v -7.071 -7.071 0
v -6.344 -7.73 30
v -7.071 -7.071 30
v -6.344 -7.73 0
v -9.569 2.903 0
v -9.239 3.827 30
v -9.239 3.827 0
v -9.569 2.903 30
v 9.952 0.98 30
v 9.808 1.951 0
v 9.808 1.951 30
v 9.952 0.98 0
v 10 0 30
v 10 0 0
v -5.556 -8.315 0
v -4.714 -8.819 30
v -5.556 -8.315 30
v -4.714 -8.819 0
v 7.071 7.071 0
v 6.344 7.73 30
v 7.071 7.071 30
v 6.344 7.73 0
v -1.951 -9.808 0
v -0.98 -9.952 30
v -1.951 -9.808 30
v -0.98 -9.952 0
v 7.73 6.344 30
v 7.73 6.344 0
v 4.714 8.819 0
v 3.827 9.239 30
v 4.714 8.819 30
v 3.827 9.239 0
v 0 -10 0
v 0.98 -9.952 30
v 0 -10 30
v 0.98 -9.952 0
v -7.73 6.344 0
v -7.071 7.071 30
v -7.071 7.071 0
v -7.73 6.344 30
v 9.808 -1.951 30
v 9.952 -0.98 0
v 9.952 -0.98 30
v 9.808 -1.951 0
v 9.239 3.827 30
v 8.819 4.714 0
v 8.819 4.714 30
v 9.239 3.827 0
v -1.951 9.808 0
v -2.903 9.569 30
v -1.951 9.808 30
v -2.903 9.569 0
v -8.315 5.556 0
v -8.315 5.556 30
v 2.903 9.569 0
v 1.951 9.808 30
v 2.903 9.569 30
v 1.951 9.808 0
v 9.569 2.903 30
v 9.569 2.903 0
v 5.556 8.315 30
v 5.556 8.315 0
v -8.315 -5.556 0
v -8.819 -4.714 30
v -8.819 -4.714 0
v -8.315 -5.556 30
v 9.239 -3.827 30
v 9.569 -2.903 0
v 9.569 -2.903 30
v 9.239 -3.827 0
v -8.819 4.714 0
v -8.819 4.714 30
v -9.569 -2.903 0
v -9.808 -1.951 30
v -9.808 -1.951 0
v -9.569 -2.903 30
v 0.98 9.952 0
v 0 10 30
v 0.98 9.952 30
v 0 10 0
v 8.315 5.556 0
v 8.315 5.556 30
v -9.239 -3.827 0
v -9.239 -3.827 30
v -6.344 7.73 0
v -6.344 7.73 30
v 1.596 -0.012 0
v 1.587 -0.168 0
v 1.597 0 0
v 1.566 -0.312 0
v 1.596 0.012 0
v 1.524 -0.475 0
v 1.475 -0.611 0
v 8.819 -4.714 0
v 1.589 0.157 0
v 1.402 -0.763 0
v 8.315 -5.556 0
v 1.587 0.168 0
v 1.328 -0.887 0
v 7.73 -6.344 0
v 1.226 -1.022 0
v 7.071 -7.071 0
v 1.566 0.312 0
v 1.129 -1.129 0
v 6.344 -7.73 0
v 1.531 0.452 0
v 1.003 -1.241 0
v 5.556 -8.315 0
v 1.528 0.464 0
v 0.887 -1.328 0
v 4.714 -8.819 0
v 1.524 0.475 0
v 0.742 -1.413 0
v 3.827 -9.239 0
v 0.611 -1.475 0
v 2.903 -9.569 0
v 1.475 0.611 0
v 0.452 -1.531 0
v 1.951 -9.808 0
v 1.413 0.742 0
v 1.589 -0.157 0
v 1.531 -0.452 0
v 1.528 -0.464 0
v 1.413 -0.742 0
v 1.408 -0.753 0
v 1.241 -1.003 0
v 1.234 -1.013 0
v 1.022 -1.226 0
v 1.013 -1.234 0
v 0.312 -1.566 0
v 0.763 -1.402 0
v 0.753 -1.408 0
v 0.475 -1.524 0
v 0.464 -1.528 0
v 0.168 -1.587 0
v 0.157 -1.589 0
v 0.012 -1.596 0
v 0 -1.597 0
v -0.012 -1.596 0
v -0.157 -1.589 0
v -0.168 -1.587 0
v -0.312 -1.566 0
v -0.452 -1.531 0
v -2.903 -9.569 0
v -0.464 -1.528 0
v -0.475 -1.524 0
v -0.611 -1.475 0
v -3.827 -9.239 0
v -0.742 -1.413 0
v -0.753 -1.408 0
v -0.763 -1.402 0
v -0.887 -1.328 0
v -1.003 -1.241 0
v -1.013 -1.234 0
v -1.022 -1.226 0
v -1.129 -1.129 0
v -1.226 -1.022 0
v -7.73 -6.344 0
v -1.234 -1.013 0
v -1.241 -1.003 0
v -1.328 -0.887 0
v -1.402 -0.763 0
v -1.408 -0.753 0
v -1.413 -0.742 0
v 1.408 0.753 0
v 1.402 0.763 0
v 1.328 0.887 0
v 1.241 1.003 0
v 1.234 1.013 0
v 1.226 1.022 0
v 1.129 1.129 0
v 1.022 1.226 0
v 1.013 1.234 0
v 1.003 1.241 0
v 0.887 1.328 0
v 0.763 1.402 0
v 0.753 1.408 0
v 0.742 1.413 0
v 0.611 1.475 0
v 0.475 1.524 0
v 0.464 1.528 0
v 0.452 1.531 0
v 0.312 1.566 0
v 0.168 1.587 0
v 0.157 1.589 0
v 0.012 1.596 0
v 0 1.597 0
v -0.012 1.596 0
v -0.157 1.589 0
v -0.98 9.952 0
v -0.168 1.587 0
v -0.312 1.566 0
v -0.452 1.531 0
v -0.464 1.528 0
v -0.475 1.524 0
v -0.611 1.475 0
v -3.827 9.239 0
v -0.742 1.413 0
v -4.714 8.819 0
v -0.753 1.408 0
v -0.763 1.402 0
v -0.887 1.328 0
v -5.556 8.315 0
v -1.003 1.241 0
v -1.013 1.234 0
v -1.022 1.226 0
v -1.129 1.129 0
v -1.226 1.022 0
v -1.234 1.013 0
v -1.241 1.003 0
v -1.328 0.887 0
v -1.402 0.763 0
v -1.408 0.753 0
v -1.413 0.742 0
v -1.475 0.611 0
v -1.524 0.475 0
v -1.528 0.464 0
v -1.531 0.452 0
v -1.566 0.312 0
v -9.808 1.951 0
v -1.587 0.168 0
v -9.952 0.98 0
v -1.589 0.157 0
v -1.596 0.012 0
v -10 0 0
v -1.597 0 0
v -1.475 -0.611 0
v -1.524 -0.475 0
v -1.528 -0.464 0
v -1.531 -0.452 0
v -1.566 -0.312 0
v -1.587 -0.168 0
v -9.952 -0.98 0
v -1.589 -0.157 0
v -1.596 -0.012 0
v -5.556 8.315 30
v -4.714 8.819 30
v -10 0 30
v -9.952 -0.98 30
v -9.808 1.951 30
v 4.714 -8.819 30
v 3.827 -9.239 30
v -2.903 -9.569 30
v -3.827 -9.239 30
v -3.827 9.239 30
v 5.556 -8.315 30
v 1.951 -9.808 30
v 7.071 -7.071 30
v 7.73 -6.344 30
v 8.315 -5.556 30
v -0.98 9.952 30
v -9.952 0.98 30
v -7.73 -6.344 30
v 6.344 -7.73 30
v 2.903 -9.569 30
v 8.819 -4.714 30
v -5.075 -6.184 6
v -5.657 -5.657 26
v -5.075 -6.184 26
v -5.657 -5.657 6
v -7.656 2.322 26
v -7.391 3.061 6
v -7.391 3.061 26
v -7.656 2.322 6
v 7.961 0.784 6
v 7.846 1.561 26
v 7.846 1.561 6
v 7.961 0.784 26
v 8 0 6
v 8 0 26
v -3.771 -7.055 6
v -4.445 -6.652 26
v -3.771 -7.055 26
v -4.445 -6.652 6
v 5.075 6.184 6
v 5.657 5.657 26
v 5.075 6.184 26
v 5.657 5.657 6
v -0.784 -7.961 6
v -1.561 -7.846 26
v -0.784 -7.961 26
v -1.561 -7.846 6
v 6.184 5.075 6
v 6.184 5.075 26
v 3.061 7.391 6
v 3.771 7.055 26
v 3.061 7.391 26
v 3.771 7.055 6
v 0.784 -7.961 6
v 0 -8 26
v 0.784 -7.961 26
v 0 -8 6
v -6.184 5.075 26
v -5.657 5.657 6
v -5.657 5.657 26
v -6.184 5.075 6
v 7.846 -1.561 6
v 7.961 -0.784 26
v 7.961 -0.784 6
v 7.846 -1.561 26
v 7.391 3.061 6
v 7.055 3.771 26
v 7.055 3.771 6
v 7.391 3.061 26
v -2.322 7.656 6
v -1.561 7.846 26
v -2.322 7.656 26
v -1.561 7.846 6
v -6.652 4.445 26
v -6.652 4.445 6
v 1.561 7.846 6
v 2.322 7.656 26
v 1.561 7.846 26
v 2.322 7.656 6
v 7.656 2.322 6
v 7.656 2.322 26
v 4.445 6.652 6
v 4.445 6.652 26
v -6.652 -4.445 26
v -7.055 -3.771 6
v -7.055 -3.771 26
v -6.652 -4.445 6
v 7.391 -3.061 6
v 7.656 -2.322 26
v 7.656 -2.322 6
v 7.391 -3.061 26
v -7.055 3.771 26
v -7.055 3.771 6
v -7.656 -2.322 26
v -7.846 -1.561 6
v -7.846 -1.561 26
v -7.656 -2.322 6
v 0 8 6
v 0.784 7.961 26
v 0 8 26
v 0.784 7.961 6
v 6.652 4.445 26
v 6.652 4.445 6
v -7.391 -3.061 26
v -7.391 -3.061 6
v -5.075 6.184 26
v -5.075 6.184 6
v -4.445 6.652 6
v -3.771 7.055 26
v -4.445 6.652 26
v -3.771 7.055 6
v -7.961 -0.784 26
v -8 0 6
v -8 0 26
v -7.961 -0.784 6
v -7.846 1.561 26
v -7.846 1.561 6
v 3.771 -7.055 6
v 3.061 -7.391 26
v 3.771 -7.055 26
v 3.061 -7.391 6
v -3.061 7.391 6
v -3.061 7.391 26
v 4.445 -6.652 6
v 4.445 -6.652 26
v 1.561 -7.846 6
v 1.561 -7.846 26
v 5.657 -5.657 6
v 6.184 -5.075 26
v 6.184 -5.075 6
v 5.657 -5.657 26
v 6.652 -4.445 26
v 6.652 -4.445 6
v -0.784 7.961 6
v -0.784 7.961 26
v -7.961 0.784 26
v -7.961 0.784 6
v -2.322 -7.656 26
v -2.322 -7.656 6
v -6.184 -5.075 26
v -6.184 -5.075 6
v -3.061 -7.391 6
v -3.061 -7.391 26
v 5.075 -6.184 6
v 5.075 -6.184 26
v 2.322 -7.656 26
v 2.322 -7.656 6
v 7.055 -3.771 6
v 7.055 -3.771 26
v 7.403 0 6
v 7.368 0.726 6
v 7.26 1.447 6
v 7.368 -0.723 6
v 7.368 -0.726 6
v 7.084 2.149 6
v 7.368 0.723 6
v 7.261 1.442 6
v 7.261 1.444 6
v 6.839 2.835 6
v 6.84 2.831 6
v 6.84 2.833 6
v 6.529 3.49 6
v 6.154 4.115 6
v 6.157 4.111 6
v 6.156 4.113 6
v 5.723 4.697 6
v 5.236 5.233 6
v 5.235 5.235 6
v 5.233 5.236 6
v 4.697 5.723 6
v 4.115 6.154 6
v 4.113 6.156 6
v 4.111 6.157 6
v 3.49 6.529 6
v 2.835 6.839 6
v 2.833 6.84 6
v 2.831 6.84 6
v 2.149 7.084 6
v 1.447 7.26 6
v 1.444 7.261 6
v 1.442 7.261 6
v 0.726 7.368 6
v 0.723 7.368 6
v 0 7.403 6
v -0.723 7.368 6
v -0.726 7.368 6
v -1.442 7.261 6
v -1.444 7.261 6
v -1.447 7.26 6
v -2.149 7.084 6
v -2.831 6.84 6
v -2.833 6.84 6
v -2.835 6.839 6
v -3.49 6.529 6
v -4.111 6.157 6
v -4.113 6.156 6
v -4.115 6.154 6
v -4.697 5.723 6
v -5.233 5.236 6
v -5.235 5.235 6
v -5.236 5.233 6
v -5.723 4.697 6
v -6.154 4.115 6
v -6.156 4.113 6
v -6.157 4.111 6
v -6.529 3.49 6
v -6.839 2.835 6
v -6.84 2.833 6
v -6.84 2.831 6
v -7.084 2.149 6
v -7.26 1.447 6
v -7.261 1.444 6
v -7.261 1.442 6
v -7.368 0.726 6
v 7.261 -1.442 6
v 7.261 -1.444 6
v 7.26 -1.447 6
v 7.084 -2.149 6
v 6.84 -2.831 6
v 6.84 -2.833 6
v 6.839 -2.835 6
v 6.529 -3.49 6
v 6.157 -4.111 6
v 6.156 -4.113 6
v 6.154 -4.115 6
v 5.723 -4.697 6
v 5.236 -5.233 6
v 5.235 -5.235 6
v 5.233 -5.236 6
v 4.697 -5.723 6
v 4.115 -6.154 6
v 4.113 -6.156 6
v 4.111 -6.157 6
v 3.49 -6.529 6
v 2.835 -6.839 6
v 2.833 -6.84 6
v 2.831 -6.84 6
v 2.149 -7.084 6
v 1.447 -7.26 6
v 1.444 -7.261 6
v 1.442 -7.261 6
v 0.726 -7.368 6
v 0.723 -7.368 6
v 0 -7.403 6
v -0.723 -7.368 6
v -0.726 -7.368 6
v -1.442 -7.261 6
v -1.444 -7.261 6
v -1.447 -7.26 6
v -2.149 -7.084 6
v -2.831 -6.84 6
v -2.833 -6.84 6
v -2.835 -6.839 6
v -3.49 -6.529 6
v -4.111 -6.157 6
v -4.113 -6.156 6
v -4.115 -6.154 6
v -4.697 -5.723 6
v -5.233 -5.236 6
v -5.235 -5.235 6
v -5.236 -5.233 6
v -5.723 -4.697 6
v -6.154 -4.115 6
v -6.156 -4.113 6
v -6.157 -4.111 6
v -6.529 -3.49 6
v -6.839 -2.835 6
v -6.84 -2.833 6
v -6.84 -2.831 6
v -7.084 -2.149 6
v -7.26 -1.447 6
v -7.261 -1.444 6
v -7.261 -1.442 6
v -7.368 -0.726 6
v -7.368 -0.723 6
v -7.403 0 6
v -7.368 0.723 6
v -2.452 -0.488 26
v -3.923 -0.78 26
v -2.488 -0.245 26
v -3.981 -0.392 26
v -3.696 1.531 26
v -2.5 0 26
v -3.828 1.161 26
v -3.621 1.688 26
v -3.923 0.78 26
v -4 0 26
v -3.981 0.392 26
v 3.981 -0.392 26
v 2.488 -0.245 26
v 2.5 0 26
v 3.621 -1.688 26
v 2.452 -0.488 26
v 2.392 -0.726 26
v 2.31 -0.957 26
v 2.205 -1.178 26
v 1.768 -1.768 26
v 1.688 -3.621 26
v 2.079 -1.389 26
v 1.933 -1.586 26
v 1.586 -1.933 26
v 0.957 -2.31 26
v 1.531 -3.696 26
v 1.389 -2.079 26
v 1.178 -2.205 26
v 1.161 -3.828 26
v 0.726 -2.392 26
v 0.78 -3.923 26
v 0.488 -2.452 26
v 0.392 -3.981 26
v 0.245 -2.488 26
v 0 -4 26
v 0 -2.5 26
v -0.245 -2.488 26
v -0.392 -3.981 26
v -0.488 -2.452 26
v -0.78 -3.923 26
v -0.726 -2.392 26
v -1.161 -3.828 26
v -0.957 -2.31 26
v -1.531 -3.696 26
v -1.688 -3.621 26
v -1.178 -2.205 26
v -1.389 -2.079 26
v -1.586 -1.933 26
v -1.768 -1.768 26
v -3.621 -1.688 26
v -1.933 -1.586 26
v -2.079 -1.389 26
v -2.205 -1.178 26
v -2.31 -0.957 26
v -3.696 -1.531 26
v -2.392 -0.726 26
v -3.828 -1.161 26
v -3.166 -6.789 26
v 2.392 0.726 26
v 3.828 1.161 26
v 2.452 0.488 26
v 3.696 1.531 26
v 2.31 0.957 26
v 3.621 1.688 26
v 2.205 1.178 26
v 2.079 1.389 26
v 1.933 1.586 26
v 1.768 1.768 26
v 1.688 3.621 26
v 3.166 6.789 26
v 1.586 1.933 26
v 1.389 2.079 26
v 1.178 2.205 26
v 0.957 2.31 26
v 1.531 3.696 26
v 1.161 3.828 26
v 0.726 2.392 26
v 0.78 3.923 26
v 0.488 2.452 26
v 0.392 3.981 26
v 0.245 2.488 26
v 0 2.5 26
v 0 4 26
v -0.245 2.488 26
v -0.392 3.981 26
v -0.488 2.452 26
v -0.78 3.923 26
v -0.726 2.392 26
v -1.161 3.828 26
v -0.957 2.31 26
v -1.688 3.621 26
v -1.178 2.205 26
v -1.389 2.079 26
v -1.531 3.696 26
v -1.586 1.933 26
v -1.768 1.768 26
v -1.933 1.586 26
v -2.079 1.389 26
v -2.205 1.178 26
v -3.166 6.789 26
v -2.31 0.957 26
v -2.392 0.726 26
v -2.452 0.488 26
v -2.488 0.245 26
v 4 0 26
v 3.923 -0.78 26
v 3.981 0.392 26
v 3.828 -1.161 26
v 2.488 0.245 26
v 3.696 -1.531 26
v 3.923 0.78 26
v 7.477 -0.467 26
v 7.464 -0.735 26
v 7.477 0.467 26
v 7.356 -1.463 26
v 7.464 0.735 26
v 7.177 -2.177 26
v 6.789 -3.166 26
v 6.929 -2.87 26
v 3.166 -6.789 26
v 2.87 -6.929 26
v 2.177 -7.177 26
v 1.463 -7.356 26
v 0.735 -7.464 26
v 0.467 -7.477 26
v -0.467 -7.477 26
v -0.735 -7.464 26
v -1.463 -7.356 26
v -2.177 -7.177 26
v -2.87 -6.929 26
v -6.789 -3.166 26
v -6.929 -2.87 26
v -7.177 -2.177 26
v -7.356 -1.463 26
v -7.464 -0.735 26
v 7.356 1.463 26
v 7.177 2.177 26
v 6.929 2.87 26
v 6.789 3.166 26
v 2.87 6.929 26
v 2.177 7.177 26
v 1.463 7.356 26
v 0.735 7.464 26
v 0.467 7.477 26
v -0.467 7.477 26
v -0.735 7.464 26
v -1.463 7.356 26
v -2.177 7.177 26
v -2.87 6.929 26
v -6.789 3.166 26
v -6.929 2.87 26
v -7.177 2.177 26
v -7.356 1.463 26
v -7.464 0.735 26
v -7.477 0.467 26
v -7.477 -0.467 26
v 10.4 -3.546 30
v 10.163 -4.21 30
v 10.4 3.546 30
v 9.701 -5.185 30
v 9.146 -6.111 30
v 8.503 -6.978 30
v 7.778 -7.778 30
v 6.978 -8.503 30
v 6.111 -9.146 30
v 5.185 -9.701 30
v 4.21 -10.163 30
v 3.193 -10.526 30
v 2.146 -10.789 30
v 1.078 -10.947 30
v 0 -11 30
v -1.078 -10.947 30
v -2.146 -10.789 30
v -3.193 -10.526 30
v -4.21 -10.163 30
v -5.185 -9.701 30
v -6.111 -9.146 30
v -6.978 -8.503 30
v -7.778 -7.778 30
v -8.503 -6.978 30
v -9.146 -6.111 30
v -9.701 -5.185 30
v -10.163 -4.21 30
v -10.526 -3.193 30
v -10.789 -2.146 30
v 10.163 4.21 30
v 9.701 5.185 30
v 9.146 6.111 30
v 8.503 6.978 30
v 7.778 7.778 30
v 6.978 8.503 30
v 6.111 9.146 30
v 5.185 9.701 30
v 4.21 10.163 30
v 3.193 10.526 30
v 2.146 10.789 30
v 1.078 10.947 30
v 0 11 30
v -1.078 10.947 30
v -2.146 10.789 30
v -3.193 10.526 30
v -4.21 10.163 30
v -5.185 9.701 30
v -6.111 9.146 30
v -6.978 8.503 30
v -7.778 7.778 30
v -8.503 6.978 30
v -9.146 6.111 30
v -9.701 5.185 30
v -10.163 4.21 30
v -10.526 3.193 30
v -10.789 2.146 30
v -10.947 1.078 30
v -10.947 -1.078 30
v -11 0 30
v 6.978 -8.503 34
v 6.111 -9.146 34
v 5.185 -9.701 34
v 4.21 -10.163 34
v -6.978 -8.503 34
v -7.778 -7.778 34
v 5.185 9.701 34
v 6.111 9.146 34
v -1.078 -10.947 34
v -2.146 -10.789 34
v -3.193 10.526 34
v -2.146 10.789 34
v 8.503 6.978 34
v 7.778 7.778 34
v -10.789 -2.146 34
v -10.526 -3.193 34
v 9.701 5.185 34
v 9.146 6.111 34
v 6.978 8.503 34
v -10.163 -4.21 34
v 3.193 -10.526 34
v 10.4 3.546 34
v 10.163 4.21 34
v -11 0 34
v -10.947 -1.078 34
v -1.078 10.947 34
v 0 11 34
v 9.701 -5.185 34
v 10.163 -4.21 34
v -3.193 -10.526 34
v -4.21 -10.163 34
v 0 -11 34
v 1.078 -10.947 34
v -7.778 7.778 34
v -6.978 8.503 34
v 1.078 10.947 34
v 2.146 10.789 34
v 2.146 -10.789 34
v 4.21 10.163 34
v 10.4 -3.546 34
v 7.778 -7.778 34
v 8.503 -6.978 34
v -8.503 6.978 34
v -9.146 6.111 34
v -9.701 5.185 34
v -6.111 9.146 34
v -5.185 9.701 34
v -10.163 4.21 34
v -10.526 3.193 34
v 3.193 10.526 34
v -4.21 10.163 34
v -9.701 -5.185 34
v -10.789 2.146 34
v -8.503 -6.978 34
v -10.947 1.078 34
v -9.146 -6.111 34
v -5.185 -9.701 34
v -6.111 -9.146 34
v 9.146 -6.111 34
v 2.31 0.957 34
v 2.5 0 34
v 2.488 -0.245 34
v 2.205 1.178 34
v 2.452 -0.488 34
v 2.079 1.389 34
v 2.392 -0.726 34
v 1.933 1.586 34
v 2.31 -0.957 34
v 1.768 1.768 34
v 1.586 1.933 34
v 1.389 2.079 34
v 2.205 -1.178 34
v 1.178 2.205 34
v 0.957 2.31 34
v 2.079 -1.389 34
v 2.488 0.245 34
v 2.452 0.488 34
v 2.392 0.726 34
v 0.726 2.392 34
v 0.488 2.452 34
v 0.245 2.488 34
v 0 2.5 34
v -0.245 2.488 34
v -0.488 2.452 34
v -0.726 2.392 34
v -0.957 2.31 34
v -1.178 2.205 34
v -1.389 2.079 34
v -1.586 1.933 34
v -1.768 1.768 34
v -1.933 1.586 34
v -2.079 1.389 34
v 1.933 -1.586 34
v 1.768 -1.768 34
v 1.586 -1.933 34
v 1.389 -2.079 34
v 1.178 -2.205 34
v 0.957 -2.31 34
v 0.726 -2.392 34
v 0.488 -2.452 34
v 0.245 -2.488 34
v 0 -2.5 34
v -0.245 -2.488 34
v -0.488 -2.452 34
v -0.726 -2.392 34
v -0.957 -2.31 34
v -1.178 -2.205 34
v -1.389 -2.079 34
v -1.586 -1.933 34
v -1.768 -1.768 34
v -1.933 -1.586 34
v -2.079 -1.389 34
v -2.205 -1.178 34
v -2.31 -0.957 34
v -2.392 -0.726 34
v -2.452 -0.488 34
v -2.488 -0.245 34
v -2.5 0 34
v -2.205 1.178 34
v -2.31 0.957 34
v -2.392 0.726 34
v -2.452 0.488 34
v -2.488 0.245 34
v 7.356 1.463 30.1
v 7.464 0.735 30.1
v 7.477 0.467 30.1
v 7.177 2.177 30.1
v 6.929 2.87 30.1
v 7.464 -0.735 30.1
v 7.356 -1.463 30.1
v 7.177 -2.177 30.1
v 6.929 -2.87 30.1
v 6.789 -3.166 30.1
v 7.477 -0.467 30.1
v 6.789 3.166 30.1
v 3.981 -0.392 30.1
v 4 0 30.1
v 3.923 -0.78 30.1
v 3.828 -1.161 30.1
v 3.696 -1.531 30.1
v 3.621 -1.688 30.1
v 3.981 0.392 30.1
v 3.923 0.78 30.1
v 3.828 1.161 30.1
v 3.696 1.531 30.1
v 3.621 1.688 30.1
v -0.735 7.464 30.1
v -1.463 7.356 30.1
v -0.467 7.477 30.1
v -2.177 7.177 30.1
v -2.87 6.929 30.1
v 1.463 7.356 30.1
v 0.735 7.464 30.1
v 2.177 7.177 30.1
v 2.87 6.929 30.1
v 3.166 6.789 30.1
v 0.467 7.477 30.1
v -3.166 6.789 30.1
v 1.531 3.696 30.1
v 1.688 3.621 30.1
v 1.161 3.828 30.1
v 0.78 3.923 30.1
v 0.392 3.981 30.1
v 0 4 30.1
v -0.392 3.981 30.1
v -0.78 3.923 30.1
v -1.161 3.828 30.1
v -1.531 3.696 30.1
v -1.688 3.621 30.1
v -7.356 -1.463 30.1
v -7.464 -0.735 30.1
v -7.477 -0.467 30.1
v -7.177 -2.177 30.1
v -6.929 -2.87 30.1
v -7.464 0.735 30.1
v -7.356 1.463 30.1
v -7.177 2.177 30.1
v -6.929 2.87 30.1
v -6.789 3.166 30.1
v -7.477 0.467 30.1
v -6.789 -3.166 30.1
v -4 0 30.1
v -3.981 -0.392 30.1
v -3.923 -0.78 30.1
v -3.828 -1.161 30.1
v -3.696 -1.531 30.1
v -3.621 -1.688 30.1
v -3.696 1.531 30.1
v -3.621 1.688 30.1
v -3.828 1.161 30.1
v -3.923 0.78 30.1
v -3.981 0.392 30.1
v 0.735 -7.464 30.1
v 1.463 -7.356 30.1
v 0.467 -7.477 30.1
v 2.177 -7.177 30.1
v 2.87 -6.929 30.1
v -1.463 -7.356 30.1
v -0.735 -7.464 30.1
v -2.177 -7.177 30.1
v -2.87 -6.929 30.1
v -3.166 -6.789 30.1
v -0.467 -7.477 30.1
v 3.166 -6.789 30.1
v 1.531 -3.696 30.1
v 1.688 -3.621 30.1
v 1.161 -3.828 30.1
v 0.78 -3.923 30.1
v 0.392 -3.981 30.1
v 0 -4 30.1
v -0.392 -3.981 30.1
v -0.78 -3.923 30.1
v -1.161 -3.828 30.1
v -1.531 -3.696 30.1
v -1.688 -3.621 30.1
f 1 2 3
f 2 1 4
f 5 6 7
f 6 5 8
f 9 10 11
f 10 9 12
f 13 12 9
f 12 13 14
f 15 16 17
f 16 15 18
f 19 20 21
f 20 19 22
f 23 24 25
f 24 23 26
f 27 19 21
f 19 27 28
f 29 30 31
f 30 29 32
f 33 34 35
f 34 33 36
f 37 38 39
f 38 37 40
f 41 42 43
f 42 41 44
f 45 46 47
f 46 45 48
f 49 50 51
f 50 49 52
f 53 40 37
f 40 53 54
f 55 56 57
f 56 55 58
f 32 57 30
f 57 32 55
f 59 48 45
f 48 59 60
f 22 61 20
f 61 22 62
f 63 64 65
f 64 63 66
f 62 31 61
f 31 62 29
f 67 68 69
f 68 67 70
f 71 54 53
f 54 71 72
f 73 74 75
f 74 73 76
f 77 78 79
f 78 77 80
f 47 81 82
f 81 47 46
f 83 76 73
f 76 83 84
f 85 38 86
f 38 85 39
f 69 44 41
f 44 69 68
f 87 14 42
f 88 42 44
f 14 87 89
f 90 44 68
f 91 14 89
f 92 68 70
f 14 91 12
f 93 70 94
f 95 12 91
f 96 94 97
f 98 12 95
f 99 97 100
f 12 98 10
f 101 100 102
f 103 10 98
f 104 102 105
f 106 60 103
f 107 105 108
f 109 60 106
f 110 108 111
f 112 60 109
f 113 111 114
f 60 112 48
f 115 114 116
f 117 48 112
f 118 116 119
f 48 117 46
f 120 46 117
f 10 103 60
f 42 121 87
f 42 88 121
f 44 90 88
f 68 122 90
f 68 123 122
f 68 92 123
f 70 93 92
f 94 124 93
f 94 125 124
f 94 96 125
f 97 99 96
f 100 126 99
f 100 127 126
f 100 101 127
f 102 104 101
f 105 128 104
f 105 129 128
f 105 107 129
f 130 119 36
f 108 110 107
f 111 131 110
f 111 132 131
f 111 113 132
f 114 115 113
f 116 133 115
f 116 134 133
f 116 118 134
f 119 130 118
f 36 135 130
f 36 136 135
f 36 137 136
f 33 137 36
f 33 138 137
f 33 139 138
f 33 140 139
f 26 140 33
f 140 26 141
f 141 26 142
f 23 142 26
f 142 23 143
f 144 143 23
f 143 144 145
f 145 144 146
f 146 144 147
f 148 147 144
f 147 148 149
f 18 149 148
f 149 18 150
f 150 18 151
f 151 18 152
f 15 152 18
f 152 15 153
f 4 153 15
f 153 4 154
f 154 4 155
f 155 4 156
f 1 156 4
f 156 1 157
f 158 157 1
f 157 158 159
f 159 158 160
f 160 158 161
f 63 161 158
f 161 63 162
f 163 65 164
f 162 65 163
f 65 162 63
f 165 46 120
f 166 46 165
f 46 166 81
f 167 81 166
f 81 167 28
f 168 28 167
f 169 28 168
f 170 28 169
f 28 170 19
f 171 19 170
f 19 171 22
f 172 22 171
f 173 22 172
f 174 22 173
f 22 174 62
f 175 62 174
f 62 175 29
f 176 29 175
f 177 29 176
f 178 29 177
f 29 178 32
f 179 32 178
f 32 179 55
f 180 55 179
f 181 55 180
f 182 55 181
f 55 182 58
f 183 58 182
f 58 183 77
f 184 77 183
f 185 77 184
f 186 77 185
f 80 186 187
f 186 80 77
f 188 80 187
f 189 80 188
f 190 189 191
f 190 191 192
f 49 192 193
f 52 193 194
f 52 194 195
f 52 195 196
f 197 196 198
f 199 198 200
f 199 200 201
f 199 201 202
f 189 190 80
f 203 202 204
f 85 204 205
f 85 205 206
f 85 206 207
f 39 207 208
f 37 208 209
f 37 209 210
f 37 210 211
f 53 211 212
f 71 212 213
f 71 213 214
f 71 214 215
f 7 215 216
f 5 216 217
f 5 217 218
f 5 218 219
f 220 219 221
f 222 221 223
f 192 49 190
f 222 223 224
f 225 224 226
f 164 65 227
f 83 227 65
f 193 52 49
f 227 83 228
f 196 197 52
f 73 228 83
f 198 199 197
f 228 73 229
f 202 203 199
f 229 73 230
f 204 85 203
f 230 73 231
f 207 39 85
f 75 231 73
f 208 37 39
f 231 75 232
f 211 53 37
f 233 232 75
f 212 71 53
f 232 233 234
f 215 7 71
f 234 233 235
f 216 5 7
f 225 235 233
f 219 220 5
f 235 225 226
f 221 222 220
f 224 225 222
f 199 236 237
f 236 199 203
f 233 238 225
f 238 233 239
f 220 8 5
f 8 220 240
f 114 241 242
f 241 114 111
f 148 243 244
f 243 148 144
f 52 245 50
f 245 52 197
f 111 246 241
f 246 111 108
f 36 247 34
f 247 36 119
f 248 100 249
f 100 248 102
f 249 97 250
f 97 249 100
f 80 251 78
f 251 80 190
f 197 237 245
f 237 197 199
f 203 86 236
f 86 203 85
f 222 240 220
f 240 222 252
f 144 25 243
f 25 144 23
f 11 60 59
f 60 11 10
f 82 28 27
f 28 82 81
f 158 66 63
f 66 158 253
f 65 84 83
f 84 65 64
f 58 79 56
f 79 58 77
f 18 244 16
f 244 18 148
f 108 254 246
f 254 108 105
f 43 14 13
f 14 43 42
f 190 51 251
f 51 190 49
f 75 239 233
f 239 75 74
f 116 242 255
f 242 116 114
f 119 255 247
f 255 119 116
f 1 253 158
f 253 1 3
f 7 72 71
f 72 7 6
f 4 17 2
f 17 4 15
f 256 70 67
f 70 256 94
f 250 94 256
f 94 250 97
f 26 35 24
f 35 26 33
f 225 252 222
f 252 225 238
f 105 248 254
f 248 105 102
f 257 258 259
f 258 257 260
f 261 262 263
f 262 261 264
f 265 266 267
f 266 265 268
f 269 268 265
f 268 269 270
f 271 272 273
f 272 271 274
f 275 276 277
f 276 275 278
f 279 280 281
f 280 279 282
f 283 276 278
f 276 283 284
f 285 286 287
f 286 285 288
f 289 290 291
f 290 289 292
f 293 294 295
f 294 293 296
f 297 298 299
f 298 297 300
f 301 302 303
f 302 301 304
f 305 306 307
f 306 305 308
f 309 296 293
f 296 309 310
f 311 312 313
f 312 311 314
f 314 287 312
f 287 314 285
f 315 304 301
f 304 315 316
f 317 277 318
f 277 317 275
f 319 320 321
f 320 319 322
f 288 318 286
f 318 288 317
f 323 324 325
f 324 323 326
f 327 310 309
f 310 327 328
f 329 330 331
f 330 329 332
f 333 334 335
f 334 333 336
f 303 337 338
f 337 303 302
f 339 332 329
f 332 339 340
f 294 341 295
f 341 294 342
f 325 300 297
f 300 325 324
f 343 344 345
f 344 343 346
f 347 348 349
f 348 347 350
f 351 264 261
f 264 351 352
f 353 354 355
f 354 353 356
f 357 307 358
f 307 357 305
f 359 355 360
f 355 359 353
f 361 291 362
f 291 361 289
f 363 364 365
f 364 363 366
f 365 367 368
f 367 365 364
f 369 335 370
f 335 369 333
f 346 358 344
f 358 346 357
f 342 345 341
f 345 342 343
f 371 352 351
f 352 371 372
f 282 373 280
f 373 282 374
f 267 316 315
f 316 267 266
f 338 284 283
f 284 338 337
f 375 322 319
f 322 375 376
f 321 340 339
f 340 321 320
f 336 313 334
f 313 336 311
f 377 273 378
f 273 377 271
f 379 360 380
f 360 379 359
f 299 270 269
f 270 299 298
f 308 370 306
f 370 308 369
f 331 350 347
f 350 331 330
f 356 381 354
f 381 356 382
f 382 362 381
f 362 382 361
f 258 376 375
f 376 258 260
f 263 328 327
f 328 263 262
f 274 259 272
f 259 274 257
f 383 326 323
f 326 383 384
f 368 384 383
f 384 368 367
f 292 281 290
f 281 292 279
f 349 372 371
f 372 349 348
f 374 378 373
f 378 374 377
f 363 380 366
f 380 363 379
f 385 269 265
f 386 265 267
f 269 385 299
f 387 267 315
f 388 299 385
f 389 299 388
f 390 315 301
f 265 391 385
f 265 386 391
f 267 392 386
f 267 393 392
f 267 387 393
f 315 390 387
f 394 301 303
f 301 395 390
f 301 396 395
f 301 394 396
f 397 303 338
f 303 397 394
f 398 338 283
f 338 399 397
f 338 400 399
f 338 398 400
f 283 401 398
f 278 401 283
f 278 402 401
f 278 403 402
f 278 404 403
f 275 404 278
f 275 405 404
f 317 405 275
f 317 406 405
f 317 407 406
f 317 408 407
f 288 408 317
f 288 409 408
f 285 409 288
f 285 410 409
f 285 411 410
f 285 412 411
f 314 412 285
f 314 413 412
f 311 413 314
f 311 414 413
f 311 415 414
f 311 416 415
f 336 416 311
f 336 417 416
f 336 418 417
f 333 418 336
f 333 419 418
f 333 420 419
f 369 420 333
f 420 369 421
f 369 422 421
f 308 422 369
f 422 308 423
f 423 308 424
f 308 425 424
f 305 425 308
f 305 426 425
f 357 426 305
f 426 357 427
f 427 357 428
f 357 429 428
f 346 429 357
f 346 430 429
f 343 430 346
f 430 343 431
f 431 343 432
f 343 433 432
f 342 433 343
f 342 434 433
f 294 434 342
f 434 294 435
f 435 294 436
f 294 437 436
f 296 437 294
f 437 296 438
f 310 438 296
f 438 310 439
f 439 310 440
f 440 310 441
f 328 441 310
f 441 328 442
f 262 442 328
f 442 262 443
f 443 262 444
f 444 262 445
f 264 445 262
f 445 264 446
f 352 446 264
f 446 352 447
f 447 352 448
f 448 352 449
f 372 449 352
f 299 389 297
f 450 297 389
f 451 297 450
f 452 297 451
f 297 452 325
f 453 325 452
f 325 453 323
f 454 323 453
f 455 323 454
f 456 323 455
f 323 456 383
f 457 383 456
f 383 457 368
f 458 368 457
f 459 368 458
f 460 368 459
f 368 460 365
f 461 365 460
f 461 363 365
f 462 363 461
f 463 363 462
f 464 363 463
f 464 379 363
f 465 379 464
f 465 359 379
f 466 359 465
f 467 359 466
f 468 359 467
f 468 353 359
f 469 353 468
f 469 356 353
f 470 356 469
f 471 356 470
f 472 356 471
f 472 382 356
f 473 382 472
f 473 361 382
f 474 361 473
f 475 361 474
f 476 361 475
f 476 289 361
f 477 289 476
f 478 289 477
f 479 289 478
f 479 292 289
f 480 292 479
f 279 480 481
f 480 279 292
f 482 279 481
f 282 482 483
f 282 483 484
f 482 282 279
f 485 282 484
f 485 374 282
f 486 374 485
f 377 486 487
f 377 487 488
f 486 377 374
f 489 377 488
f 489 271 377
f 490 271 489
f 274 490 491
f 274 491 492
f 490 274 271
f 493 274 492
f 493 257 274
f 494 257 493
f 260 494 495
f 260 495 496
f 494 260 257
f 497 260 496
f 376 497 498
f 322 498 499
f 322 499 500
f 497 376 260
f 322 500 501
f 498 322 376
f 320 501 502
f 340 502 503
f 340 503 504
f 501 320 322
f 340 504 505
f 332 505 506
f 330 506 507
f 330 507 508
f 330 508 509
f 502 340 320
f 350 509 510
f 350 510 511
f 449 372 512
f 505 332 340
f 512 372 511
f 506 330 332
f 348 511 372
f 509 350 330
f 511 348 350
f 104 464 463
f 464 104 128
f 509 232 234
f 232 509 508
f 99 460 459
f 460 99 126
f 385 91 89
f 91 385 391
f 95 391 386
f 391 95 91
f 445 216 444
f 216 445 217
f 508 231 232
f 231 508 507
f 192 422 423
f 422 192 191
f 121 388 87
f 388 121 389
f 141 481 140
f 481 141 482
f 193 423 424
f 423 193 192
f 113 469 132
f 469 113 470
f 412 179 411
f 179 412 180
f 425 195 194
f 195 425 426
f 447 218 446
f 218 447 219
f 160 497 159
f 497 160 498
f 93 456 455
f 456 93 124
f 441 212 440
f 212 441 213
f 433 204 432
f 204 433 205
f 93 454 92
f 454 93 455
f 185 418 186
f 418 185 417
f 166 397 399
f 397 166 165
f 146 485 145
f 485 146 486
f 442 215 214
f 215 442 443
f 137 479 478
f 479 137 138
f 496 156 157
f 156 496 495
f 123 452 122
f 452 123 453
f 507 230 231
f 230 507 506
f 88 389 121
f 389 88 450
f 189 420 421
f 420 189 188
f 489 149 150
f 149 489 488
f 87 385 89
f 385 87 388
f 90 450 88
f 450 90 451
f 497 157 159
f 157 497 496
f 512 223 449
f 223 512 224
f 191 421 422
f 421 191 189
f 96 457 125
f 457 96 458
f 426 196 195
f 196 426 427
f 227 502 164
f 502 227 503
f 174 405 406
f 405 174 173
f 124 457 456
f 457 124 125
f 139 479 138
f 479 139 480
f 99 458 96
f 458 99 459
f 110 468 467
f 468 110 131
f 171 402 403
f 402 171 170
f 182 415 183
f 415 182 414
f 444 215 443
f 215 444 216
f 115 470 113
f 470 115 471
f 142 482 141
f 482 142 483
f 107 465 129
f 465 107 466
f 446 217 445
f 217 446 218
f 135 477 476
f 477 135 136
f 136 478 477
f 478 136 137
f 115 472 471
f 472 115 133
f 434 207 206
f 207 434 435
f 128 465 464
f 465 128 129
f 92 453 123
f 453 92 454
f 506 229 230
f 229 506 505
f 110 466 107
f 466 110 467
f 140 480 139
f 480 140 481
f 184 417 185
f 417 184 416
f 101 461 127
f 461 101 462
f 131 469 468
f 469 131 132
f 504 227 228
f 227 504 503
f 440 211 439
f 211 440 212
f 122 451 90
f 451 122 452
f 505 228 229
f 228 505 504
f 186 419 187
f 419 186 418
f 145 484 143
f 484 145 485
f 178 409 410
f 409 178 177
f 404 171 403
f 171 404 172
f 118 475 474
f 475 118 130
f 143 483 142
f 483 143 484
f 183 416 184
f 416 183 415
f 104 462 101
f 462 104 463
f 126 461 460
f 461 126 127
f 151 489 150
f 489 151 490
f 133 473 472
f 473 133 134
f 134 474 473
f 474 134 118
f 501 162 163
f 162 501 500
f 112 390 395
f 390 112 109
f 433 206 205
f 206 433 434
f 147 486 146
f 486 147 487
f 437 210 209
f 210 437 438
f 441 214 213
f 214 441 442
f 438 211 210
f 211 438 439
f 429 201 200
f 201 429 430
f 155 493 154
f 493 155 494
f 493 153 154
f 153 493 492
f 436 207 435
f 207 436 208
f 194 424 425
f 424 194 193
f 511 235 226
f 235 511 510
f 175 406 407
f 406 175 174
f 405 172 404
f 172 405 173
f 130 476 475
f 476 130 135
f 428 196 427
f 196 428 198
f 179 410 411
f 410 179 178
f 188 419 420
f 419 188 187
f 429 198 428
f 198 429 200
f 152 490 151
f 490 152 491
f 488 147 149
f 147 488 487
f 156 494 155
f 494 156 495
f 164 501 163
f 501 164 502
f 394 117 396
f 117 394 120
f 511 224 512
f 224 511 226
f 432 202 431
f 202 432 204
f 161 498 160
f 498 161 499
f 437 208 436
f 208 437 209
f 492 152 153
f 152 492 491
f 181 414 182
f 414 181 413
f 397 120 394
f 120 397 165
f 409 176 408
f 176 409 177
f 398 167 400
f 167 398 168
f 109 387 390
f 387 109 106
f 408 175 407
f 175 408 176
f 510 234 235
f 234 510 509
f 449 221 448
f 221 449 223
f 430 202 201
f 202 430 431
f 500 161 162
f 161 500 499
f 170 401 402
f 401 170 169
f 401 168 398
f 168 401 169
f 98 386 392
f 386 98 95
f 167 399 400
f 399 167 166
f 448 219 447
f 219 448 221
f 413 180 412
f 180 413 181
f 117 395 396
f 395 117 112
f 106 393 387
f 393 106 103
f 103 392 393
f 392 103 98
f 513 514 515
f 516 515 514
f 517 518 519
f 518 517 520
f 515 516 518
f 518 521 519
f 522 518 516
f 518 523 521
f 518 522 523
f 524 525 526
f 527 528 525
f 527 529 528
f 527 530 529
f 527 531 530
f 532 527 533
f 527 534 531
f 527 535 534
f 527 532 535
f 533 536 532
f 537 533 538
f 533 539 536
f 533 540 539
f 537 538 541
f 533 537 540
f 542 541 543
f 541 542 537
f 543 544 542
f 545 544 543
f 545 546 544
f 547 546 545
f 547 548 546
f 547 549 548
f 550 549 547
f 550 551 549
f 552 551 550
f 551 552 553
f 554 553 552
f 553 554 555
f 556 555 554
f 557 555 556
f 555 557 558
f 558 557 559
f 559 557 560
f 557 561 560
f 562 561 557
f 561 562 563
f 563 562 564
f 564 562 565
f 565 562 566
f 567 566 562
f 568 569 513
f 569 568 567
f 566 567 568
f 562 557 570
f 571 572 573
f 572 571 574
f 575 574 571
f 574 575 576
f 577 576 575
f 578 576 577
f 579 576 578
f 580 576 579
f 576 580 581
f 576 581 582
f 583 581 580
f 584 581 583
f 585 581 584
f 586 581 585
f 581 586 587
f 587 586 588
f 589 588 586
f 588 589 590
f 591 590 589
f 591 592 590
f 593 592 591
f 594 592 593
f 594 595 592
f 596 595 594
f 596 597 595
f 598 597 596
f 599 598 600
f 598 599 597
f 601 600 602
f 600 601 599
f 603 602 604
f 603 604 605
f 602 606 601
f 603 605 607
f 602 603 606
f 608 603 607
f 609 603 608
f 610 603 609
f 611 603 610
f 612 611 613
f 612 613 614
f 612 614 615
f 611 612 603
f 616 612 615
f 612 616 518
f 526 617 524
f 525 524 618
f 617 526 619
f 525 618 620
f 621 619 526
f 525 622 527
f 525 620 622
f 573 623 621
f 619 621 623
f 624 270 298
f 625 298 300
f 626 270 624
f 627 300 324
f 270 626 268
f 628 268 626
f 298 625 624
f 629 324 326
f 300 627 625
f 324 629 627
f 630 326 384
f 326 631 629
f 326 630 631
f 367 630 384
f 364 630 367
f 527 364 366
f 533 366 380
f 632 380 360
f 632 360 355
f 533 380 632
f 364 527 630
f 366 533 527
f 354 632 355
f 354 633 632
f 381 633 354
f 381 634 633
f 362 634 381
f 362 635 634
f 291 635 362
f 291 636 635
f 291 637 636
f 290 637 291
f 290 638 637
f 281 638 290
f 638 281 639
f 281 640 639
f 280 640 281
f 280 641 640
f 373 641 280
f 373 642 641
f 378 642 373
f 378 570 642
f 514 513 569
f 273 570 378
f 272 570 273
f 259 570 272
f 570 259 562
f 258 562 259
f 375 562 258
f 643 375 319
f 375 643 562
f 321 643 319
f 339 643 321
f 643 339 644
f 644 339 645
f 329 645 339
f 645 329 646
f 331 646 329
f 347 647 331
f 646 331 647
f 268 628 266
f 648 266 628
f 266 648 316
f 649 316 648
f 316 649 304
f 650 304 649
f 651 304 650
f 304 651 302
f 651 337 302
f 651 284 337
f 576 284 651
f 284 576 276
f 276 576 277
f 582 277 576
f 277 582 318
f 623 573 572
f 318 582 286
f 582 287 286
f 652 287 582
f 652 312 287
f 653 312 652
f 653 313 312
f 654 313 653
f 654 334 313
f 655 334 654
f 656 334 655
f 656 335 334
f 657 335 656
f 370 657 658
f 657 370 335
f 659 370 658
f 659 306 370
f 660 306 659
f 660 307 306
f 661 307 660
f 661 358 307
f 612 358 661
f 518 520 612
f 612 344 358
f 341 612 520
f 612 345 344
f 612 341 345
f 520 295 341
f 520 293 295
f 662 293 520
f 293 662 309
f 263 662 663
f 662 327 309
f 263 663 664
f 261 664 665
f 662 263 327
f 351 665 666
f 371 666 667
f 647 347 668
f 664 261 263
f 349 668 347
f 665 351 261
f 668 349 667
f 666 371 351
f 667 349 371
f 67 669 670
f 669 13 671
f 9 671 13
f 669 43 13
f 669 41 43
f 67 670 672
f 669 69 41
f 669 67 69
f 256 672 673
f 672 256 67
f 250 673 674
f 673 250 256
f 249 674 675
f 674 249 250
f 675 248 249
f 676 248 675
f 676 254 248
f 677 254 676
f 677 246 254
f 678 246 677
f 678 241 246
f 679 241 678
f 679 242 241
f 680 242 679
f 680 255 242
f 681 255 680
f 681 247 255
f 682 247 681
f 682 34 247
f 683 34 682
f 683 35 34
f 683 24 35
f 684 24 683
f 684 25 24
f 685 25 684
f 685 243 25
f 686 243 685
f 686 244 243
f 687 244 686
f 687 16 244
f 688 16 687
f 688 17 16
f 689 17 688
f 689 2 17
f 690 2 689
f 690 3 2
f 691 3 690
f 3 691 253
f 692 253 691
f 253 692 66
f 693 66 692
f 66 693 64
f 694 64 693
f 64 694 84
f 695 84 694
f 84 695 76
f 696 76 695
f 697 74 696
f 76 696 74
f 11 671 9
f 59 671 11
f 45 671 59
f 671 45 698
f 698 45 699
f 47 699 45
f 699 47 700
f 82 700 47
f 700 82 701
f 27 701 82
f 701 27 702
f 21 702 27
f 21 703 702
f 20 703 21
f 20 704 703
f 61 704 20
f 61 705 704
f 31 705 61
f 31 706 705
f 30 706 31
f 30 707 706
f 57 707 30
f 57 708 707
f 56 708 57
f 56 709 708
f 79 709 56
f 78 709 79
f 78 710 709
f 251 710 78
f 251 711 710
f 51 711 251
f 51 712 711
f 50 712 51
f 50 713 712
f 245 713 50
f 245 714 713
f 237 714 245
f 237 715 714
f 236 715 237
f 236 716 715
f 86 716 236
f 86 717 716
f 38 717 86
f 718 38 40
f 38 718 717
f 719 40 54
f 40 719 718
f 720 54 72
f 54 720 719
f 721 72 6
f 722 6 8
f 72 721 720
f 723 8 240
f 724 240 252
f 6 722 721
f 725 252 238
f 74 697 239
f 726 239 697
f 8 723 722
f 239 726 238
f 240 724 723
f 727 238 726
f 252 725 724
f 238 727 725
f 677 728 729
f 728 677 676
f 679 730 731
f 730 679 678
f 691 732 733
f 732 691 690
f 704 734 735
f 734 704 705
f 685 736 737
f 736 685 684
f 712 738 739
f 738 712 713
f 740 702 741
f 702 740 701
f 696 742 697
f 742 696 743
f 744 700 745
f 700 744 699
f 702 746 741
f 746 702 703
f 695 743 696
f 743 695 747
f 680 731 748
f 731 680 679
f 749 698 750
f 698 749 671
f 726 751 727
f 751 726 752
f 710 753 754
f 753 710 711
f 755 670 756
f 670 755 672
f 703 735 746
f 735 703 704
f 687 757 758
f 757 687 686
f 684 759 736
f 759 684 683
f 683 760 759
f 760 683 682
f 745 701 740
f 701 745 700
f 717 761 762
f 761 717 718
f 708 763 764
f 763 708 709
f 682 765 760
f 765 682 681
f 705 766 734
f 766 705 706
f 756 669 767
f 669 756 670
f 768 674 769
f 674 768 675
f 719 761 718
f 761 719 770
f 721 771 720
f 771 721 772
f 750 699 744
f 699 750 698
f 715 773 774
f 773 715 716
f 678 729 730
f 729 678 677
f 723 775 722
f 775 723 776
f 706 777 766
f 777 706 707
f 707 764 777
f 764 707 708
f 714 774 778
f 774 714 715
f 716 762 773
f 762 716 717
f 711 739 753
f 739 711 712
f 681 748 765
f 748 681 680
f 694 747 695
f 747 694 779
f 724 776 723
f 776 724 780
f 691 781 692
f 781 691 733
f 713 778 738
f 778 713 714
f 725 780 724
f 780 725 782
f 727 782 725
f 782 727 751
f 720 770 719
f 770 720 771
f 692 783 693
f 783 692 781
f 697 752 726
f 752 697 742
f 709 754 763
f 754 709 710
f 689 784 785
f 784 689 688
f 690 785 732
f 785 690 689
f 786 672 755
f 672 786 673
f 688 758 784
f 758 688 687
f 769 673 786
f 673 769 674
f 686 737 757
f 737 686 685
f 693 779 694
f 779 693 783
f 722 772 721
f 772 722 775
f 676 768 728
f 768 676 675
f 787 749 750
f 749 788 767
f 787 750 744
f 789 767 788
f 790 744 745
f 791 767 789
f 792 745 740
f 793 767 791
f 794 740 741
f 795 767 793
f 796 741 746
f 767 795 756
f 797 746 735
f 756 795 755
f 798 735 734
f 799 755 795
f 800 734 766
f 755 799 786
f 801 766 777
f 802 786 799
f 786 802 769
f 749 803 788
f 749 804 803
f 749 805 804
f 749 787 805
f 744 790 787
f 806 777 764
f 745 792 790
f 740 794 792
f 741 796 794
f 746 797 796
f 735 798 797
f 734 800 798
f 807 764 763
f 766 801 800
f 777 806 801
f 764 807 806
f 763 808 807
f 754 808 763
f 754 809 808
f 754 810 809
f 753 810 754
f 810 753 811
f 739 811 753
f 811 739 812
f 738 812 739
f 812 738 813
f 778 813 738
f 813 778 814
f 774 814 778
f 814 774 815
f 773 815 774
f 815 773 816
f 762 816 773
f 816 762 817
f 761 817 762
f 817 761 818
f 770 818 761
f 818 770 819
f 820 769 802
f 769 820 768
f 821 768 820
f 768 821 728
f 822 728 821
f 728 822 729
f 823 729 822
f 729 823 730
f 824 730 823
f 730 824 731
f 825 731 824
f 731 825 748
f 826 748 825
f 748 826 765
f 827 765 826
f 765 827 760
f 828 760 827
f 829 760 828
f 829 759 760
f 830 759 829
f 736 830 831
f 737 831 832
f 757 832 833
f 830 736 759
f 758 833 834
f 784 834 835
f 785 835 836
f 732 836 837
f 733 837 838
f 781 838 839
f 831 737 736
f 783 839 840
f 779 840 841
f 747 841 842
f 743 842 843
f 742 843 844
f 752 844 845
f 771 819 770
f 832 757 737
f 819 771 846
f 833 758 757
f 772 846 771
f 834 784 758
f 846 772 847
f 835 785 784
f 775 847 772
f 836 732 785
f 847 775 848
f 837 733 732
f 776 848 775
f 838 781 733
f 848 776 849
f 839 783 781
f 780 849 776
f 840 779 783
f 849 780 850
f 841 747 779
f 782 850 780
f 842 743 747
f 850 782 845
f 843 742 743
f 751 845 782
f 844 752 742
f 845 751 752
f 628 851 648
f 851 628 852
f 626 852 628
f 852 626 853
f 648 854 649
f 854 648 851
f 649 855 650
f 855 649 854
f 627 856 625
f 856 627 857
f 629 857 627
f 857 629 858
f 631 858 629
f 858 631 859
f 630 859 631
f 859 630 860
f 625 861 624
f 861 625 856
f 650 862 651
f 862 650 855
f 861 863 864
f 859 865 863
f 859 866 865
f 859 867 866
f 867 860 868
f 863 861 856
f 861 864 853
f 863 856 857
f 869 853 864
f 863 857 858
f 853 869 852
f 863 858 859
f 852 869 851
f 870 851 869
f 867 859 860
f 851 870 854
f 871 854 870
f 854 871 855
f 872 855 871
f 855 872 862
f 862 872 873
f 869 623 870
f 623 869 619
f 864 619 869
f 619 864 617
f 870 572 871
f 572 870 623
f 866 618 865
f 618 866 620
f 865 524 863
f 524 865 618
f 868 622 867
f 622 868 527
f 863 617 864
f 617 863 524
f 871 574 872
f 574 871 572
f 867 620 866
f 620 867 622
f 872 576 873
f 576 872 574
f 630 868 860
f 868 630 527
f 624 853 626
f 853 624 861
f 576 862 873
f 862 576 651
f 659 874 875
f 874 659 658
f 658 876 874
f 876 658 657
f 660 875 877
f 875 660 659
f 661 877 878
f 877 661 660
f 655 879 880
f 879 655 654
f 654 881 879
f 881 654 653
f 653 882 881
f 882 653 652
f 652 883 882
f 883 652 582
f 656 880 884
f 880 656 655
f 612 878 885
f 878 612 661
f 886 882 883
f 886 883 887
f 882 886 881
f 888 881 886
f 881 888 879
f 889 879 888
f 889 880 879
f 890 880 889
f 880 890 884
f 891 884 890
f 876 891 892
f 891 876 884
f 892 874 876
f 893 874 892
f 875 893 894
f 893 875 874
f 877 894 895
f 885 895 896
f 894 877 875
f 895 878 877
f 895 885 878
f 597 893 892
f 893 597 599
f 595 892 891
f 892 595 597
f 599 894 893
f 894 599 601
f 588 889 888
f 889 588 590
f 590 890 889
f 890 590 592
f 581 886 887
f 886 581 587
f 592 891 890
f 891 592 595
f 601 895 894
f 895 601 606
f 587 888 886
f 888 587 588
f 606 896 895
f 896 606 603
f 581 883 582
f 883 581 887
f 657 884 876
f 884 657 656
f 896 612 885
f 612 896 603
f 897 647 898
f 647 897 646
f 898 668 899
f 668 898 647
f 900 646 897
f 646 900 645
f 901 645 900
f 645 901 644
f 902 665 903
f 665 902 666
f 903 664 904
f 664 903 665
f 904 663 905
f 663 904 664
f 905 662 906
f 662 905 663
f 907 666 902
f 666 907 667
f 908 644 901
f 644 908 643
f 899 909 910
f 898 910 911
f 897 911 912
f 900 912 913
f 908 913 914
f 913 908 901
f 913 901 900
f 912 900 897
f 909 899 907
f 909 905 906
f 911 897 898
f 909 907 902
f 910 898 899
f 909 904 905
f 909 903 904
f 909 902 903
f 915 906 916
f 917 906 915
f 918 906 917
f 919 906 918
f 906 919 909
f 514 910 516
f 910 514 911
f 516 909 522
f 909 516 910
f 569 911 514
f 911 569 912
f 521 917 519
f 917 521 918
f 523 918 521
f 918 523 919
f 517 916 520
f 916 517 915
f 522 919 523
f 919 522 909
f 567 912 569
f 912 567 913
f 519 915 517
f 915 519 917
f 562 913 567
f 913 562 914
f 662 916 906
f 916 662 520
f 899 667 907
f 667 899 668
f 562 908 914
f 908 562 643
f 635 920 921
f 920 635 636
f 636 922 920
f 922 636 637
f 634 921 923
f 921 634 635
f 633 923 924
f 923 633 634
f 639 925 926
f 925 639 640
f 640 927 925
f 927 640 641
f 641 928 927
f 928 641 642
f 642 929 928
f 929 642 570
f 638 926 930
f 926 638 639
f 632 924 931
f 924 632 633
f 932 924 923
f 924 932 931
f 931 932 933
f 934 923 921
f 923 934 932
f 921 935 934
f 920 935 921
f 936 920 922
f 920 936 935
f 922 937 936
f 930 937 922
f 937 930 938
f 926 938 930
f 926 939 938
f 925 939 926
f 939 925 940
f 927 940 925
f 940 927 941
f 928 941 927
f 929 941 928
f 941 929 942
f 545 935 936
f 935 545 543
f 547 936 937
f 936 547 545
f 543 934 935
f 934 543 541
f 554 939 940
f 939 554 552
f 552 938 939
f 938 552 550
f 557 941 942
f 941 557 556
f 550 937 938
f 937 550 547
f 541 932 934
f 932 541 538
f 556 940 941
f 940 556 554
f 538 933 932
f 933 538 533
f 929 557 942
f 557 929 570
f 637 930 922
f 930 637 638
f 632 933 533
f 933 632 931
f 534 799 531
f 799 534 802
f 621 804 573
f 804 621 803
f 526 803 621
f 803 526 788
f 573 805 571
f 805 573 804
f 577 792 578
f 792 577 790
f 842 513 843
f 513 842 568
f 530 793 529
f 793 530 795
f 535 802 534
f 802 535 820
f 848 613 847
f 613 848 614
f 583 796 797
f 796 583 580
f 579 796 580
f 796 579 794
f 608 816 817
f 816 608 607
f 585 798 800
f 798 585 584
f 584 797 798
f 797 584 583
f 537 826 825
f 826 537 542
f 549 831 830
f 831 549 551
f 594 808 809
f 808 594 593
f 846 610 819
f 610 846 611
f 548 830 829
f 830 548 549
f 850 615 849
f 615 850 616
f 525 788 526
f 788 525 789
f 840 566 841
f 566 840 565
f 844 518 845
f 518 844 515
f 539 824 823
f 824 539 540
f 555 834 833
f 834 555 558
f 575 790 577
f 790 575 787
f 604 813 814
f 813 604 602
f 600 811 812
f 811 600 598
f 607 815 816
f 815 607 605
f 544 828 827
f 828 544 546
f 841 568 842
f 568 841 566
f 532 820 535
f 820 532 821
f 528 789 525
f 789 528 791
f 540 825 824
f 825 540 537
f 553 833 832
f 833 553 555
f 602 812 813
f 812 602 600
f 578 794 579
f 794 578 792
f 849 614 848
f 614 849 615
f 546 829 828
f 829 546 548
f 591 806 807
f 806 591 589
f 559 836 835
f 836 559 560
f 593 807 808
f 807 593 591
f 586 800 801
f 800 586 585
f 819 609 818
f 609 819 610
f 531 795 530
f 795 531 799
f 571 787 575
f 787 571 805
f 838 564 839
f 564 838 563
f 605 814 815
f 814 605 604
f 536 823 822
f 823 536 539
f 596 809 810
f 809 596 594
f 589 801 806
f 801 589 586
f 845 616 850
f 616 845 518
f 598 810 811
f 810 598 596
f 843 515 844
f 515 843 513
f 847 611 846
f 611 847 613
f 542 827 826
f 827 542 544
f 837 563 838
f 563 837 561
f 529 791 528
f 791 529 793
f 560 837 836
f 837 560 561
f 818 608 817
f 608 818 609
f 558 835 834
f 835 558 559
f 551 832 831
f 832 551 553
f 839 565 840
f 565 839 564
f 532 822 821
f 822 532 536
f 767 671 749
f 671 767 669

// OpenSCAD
// ================================================================
// Powder Excavator — Archimedes Auger: ROTATING outer tube (v3)
// ================================================================
//
// Two-part architecture. This file is the ROTATING outer housing.
// It rotates around the FIXED inner shaft (`auger-shaft.scad`).
//
// Drive: the frankenmitsu spindle attaches to the EXTERNAL drive flange
// at the top of this part (a 22 mm OD disc with a flat for a set-screw
// coupler). The shaft passes through the central clearance bore in the
// drive flange — that bore is the upper journal bearing.
//
// Powder path:
//   - Loaded through the four sectoral slots in the top drive cap that
//     surround the central shaft-clearance bore.
//   - Falls into the helix region between the rotating wall and the fixed
//     helix. The wall drags the powder against the helix flank; the fixed
//     helix deflects it downward (relative to the rotating reference frame
//     this is the same kinematics as a stationary tube + rotating screw).
//   - Exits through the on-axis hole in the bottom funnel cone.
//
// Fits (must match the value in `auger-shaft.scad`):
//   - Helix OD vs tube ID: 0.5 mm radial clearance per side.
//   - Shaft core OD vs top-cap bore: 0.5 mm radial clearance per side.
//
// Print orientation: exit-hole-down on the build plate (Z+ = drive cap).
// Same orientation as the v2 monolithic part, so the brim + support
// recipe carries over: 4 mm brim around the small annular bottom contact,
// auto-supports at 50° threshold for the funnel-cone underside and the
// top-cap bridges.
//
// ================================================================

/* [Main Dimensions — keep in sync with auger-shaft.scad] */
outer_diameter   = 20;    // mm — outer tube OD
total_height     = 30;    // mm — total tube height
                          // v3.1: shortened from 100 mm → 30 mm — see
                          // matching note in auger-shaft.scad.
wall_thickness   = 2;     // mm — outer tube wall

/* [Clearance / fit] */
radial_clearance = 0.5;   // mm — per-side gap (helix↔tube ID, shaft↔bore)

/* [Inner shaft — informational] */
shaft_core_d     = 4;     // mm — must match auger-shaft.scad
// Top-cap bore = shaft OD + 2*radial_clearance → 5.0 mm clearance bore.

/* [Top drive flange — external coupler attachment] */
// The flange is wider than the tube OD so a standard coupler can grip it
// with a set-screw on the external flat. Sits flush on top of the tube cap.
drive_flange_d   = 22;    // mm — flange OD (>= outer_diameter)
drive_flange_h   = 4;     // mm — flange thickness
flat_depth       = 0.6;   // mm — depth of set-screw flat machined into flange OD

/* [Top cap — closed lid with central shaft bore + loading slots] */
top_cap_h        = 4;     // mm — cap thickness (top of the rotating tube)
slot_count       = 4;     // sectoral powder-loading slots around shaft bore
slot_inner_r     = 4;     // mm — slot inner edge (just outside shaft-bore wall)
slot_outer_r     = inner_r() - 0.5;  // mm — slot outer edge (just inside outer wall)
slot_arc_deg     = 50;    // ° — angular width of each slot

/* [Bottom funnel — closed funnel with on-axis exit hole] */
exit_hole_d      = 3.0;   // mm — exit hole CAD (≈2.5 mm as printed at 0.4 mm)
bottom_cap_h     = 6;     // mm — funnel section height

// ================================================================
// Derived — do not edit
// ================================================================
function inner_r() = (outer_diameter - 2 * wall_thickness) / 2;   // 8 mm
function outer_r() = outer_diameter / 2;                           // 10 mm
function shaft_bore_d() = shaft_core_d + 2 * radial_clearance;     // 5 mm

$fn = 64;

// ================================================================
// Modules
// ================================================================

// Outer tube body — hollow cylinder, full height. Closed by top_cap and
// bottom_funnel; the inner cylindrical surface is what sweeps past the
// fixed helix during rotation.
module tube_walls() {
    difference() {
        cylinder(r=outer_r(), h=total_height);
        translate([0, 0, -0.1])
            cylinder(r=inner_r(), h=total_height + 0.2);
    }
}

// Bottom funnel — closes the bottom end of the tube and directs powder to
// the on-axis exit hole. Inner conical void widens upward from the exit
// hole to nearly the inner radius, matching the v2 funnel profile.
module bottom_funnel() {
    difference() {
        cylinder(r=outer_r(), h=bottom_cap_h);
        translate([0, 0, -0.1])
            cylinder(
                r1 = exit_hole_d / 2,         // narrow at z=0 (exit)
                r2 = inner_r() - 0.5,         // wide at top of funnel
                h  = bottom_cap_h + 0.2
            );
    }
}

// Top drive cap — closed lid with central shaft-clearance bore (the upper
// journal bearing) and four sectoral powder-loading slots around it. The
// drive flange + set-screw flat sit on top of this cap.
module top_drive_cap() {
    z_cap = total_height - top_cap_h;
    difference() {
        union() {
            // Flat closing disc that seals the tube against the rotating wall
            translate([0, 0, z_cap])
                cylinder(r=outer_r(), h=top_cap_h);
            // External drive flange — wider than the tube so a coupler can
            // grip the OD with a radial set-screw.
            translate([0, 0, total_height])
                cylinder(d=drive_flange_d, h=drive_flange_h);
        }
        // Central clearance bore — shaft passes through here. This bore is
        // the upper journal bearing.
        translate([0, 0, z_cap - 0.1])
            cylinder(d=shaft_bore_d(),
                     h=top_cap_h + drive_flange_h + 0.2);
        // Set-screw flat on flange OD — gives a coupler's grub screw a
        // square contact patch, prevents slip under torque.
        translate([drive_flange_d/2 - flat_depth,
                   -drive_flange_d/2,
                   total_height - 0.1])
            cube([flat_depth + 1, drive_flange_d, drive_flange_h + 0.2]);
        // Powder loading slots — sectoral cut-outs through the cap.
        for (i = [0 : slot_count - 1]) {
            angle = i * (360 / slot_count);
            rotate([0, 0, angle])
                slot_sector();
        }
    }
}

// One pie-slice slot through the cap, from slot_inner_r out to slot_outer_r,
// spanning slot_arc_deg degrees centred on +X. Built as the intersection of
// an annulus and a wedge so the inner/outer radii are exact circular arcs.
module slot_sector() {
    z_cap = total_height - top_cap_h;
    intersection() {
        // Annulus
        translate([0, 0, z_cap - 0.1])
        difference() {
            cylinder(r=slot_outer_r, h=top_cap_h + 0.2);
            translate([0, 0, -0.1])
                cylinder(r=slot_inner_r, h=top_cap_h + 0.4);
        }
        // Wedge
        translate([0, 0, z_cap - 0.2])
        rotate([0, 0, -slot_arc_deg / 2])
        linear_extrude(top_cap_h + 0.4)
        polygon([
            [0, 0],
            [slot_outer_r * 1.1, 0],
            [slot_outer_r * 1.1 * cos(slot_arc_deg),
             slot_outer_r * 1.1 * sin(slot_arc_deg)],
        ]);
    }
}

// ================================================================
// Assembly — rotating outer tube as a single manifold solid.
// ================================================================
module auger_housing() {
    color("#5B9BD5", 0.95)
    union() {
        tube_walls();
        bottom_funnel();
        top_drive_cap();
    }
}

// Render this part standalone (used by render_print.sh).
auger_housing();
